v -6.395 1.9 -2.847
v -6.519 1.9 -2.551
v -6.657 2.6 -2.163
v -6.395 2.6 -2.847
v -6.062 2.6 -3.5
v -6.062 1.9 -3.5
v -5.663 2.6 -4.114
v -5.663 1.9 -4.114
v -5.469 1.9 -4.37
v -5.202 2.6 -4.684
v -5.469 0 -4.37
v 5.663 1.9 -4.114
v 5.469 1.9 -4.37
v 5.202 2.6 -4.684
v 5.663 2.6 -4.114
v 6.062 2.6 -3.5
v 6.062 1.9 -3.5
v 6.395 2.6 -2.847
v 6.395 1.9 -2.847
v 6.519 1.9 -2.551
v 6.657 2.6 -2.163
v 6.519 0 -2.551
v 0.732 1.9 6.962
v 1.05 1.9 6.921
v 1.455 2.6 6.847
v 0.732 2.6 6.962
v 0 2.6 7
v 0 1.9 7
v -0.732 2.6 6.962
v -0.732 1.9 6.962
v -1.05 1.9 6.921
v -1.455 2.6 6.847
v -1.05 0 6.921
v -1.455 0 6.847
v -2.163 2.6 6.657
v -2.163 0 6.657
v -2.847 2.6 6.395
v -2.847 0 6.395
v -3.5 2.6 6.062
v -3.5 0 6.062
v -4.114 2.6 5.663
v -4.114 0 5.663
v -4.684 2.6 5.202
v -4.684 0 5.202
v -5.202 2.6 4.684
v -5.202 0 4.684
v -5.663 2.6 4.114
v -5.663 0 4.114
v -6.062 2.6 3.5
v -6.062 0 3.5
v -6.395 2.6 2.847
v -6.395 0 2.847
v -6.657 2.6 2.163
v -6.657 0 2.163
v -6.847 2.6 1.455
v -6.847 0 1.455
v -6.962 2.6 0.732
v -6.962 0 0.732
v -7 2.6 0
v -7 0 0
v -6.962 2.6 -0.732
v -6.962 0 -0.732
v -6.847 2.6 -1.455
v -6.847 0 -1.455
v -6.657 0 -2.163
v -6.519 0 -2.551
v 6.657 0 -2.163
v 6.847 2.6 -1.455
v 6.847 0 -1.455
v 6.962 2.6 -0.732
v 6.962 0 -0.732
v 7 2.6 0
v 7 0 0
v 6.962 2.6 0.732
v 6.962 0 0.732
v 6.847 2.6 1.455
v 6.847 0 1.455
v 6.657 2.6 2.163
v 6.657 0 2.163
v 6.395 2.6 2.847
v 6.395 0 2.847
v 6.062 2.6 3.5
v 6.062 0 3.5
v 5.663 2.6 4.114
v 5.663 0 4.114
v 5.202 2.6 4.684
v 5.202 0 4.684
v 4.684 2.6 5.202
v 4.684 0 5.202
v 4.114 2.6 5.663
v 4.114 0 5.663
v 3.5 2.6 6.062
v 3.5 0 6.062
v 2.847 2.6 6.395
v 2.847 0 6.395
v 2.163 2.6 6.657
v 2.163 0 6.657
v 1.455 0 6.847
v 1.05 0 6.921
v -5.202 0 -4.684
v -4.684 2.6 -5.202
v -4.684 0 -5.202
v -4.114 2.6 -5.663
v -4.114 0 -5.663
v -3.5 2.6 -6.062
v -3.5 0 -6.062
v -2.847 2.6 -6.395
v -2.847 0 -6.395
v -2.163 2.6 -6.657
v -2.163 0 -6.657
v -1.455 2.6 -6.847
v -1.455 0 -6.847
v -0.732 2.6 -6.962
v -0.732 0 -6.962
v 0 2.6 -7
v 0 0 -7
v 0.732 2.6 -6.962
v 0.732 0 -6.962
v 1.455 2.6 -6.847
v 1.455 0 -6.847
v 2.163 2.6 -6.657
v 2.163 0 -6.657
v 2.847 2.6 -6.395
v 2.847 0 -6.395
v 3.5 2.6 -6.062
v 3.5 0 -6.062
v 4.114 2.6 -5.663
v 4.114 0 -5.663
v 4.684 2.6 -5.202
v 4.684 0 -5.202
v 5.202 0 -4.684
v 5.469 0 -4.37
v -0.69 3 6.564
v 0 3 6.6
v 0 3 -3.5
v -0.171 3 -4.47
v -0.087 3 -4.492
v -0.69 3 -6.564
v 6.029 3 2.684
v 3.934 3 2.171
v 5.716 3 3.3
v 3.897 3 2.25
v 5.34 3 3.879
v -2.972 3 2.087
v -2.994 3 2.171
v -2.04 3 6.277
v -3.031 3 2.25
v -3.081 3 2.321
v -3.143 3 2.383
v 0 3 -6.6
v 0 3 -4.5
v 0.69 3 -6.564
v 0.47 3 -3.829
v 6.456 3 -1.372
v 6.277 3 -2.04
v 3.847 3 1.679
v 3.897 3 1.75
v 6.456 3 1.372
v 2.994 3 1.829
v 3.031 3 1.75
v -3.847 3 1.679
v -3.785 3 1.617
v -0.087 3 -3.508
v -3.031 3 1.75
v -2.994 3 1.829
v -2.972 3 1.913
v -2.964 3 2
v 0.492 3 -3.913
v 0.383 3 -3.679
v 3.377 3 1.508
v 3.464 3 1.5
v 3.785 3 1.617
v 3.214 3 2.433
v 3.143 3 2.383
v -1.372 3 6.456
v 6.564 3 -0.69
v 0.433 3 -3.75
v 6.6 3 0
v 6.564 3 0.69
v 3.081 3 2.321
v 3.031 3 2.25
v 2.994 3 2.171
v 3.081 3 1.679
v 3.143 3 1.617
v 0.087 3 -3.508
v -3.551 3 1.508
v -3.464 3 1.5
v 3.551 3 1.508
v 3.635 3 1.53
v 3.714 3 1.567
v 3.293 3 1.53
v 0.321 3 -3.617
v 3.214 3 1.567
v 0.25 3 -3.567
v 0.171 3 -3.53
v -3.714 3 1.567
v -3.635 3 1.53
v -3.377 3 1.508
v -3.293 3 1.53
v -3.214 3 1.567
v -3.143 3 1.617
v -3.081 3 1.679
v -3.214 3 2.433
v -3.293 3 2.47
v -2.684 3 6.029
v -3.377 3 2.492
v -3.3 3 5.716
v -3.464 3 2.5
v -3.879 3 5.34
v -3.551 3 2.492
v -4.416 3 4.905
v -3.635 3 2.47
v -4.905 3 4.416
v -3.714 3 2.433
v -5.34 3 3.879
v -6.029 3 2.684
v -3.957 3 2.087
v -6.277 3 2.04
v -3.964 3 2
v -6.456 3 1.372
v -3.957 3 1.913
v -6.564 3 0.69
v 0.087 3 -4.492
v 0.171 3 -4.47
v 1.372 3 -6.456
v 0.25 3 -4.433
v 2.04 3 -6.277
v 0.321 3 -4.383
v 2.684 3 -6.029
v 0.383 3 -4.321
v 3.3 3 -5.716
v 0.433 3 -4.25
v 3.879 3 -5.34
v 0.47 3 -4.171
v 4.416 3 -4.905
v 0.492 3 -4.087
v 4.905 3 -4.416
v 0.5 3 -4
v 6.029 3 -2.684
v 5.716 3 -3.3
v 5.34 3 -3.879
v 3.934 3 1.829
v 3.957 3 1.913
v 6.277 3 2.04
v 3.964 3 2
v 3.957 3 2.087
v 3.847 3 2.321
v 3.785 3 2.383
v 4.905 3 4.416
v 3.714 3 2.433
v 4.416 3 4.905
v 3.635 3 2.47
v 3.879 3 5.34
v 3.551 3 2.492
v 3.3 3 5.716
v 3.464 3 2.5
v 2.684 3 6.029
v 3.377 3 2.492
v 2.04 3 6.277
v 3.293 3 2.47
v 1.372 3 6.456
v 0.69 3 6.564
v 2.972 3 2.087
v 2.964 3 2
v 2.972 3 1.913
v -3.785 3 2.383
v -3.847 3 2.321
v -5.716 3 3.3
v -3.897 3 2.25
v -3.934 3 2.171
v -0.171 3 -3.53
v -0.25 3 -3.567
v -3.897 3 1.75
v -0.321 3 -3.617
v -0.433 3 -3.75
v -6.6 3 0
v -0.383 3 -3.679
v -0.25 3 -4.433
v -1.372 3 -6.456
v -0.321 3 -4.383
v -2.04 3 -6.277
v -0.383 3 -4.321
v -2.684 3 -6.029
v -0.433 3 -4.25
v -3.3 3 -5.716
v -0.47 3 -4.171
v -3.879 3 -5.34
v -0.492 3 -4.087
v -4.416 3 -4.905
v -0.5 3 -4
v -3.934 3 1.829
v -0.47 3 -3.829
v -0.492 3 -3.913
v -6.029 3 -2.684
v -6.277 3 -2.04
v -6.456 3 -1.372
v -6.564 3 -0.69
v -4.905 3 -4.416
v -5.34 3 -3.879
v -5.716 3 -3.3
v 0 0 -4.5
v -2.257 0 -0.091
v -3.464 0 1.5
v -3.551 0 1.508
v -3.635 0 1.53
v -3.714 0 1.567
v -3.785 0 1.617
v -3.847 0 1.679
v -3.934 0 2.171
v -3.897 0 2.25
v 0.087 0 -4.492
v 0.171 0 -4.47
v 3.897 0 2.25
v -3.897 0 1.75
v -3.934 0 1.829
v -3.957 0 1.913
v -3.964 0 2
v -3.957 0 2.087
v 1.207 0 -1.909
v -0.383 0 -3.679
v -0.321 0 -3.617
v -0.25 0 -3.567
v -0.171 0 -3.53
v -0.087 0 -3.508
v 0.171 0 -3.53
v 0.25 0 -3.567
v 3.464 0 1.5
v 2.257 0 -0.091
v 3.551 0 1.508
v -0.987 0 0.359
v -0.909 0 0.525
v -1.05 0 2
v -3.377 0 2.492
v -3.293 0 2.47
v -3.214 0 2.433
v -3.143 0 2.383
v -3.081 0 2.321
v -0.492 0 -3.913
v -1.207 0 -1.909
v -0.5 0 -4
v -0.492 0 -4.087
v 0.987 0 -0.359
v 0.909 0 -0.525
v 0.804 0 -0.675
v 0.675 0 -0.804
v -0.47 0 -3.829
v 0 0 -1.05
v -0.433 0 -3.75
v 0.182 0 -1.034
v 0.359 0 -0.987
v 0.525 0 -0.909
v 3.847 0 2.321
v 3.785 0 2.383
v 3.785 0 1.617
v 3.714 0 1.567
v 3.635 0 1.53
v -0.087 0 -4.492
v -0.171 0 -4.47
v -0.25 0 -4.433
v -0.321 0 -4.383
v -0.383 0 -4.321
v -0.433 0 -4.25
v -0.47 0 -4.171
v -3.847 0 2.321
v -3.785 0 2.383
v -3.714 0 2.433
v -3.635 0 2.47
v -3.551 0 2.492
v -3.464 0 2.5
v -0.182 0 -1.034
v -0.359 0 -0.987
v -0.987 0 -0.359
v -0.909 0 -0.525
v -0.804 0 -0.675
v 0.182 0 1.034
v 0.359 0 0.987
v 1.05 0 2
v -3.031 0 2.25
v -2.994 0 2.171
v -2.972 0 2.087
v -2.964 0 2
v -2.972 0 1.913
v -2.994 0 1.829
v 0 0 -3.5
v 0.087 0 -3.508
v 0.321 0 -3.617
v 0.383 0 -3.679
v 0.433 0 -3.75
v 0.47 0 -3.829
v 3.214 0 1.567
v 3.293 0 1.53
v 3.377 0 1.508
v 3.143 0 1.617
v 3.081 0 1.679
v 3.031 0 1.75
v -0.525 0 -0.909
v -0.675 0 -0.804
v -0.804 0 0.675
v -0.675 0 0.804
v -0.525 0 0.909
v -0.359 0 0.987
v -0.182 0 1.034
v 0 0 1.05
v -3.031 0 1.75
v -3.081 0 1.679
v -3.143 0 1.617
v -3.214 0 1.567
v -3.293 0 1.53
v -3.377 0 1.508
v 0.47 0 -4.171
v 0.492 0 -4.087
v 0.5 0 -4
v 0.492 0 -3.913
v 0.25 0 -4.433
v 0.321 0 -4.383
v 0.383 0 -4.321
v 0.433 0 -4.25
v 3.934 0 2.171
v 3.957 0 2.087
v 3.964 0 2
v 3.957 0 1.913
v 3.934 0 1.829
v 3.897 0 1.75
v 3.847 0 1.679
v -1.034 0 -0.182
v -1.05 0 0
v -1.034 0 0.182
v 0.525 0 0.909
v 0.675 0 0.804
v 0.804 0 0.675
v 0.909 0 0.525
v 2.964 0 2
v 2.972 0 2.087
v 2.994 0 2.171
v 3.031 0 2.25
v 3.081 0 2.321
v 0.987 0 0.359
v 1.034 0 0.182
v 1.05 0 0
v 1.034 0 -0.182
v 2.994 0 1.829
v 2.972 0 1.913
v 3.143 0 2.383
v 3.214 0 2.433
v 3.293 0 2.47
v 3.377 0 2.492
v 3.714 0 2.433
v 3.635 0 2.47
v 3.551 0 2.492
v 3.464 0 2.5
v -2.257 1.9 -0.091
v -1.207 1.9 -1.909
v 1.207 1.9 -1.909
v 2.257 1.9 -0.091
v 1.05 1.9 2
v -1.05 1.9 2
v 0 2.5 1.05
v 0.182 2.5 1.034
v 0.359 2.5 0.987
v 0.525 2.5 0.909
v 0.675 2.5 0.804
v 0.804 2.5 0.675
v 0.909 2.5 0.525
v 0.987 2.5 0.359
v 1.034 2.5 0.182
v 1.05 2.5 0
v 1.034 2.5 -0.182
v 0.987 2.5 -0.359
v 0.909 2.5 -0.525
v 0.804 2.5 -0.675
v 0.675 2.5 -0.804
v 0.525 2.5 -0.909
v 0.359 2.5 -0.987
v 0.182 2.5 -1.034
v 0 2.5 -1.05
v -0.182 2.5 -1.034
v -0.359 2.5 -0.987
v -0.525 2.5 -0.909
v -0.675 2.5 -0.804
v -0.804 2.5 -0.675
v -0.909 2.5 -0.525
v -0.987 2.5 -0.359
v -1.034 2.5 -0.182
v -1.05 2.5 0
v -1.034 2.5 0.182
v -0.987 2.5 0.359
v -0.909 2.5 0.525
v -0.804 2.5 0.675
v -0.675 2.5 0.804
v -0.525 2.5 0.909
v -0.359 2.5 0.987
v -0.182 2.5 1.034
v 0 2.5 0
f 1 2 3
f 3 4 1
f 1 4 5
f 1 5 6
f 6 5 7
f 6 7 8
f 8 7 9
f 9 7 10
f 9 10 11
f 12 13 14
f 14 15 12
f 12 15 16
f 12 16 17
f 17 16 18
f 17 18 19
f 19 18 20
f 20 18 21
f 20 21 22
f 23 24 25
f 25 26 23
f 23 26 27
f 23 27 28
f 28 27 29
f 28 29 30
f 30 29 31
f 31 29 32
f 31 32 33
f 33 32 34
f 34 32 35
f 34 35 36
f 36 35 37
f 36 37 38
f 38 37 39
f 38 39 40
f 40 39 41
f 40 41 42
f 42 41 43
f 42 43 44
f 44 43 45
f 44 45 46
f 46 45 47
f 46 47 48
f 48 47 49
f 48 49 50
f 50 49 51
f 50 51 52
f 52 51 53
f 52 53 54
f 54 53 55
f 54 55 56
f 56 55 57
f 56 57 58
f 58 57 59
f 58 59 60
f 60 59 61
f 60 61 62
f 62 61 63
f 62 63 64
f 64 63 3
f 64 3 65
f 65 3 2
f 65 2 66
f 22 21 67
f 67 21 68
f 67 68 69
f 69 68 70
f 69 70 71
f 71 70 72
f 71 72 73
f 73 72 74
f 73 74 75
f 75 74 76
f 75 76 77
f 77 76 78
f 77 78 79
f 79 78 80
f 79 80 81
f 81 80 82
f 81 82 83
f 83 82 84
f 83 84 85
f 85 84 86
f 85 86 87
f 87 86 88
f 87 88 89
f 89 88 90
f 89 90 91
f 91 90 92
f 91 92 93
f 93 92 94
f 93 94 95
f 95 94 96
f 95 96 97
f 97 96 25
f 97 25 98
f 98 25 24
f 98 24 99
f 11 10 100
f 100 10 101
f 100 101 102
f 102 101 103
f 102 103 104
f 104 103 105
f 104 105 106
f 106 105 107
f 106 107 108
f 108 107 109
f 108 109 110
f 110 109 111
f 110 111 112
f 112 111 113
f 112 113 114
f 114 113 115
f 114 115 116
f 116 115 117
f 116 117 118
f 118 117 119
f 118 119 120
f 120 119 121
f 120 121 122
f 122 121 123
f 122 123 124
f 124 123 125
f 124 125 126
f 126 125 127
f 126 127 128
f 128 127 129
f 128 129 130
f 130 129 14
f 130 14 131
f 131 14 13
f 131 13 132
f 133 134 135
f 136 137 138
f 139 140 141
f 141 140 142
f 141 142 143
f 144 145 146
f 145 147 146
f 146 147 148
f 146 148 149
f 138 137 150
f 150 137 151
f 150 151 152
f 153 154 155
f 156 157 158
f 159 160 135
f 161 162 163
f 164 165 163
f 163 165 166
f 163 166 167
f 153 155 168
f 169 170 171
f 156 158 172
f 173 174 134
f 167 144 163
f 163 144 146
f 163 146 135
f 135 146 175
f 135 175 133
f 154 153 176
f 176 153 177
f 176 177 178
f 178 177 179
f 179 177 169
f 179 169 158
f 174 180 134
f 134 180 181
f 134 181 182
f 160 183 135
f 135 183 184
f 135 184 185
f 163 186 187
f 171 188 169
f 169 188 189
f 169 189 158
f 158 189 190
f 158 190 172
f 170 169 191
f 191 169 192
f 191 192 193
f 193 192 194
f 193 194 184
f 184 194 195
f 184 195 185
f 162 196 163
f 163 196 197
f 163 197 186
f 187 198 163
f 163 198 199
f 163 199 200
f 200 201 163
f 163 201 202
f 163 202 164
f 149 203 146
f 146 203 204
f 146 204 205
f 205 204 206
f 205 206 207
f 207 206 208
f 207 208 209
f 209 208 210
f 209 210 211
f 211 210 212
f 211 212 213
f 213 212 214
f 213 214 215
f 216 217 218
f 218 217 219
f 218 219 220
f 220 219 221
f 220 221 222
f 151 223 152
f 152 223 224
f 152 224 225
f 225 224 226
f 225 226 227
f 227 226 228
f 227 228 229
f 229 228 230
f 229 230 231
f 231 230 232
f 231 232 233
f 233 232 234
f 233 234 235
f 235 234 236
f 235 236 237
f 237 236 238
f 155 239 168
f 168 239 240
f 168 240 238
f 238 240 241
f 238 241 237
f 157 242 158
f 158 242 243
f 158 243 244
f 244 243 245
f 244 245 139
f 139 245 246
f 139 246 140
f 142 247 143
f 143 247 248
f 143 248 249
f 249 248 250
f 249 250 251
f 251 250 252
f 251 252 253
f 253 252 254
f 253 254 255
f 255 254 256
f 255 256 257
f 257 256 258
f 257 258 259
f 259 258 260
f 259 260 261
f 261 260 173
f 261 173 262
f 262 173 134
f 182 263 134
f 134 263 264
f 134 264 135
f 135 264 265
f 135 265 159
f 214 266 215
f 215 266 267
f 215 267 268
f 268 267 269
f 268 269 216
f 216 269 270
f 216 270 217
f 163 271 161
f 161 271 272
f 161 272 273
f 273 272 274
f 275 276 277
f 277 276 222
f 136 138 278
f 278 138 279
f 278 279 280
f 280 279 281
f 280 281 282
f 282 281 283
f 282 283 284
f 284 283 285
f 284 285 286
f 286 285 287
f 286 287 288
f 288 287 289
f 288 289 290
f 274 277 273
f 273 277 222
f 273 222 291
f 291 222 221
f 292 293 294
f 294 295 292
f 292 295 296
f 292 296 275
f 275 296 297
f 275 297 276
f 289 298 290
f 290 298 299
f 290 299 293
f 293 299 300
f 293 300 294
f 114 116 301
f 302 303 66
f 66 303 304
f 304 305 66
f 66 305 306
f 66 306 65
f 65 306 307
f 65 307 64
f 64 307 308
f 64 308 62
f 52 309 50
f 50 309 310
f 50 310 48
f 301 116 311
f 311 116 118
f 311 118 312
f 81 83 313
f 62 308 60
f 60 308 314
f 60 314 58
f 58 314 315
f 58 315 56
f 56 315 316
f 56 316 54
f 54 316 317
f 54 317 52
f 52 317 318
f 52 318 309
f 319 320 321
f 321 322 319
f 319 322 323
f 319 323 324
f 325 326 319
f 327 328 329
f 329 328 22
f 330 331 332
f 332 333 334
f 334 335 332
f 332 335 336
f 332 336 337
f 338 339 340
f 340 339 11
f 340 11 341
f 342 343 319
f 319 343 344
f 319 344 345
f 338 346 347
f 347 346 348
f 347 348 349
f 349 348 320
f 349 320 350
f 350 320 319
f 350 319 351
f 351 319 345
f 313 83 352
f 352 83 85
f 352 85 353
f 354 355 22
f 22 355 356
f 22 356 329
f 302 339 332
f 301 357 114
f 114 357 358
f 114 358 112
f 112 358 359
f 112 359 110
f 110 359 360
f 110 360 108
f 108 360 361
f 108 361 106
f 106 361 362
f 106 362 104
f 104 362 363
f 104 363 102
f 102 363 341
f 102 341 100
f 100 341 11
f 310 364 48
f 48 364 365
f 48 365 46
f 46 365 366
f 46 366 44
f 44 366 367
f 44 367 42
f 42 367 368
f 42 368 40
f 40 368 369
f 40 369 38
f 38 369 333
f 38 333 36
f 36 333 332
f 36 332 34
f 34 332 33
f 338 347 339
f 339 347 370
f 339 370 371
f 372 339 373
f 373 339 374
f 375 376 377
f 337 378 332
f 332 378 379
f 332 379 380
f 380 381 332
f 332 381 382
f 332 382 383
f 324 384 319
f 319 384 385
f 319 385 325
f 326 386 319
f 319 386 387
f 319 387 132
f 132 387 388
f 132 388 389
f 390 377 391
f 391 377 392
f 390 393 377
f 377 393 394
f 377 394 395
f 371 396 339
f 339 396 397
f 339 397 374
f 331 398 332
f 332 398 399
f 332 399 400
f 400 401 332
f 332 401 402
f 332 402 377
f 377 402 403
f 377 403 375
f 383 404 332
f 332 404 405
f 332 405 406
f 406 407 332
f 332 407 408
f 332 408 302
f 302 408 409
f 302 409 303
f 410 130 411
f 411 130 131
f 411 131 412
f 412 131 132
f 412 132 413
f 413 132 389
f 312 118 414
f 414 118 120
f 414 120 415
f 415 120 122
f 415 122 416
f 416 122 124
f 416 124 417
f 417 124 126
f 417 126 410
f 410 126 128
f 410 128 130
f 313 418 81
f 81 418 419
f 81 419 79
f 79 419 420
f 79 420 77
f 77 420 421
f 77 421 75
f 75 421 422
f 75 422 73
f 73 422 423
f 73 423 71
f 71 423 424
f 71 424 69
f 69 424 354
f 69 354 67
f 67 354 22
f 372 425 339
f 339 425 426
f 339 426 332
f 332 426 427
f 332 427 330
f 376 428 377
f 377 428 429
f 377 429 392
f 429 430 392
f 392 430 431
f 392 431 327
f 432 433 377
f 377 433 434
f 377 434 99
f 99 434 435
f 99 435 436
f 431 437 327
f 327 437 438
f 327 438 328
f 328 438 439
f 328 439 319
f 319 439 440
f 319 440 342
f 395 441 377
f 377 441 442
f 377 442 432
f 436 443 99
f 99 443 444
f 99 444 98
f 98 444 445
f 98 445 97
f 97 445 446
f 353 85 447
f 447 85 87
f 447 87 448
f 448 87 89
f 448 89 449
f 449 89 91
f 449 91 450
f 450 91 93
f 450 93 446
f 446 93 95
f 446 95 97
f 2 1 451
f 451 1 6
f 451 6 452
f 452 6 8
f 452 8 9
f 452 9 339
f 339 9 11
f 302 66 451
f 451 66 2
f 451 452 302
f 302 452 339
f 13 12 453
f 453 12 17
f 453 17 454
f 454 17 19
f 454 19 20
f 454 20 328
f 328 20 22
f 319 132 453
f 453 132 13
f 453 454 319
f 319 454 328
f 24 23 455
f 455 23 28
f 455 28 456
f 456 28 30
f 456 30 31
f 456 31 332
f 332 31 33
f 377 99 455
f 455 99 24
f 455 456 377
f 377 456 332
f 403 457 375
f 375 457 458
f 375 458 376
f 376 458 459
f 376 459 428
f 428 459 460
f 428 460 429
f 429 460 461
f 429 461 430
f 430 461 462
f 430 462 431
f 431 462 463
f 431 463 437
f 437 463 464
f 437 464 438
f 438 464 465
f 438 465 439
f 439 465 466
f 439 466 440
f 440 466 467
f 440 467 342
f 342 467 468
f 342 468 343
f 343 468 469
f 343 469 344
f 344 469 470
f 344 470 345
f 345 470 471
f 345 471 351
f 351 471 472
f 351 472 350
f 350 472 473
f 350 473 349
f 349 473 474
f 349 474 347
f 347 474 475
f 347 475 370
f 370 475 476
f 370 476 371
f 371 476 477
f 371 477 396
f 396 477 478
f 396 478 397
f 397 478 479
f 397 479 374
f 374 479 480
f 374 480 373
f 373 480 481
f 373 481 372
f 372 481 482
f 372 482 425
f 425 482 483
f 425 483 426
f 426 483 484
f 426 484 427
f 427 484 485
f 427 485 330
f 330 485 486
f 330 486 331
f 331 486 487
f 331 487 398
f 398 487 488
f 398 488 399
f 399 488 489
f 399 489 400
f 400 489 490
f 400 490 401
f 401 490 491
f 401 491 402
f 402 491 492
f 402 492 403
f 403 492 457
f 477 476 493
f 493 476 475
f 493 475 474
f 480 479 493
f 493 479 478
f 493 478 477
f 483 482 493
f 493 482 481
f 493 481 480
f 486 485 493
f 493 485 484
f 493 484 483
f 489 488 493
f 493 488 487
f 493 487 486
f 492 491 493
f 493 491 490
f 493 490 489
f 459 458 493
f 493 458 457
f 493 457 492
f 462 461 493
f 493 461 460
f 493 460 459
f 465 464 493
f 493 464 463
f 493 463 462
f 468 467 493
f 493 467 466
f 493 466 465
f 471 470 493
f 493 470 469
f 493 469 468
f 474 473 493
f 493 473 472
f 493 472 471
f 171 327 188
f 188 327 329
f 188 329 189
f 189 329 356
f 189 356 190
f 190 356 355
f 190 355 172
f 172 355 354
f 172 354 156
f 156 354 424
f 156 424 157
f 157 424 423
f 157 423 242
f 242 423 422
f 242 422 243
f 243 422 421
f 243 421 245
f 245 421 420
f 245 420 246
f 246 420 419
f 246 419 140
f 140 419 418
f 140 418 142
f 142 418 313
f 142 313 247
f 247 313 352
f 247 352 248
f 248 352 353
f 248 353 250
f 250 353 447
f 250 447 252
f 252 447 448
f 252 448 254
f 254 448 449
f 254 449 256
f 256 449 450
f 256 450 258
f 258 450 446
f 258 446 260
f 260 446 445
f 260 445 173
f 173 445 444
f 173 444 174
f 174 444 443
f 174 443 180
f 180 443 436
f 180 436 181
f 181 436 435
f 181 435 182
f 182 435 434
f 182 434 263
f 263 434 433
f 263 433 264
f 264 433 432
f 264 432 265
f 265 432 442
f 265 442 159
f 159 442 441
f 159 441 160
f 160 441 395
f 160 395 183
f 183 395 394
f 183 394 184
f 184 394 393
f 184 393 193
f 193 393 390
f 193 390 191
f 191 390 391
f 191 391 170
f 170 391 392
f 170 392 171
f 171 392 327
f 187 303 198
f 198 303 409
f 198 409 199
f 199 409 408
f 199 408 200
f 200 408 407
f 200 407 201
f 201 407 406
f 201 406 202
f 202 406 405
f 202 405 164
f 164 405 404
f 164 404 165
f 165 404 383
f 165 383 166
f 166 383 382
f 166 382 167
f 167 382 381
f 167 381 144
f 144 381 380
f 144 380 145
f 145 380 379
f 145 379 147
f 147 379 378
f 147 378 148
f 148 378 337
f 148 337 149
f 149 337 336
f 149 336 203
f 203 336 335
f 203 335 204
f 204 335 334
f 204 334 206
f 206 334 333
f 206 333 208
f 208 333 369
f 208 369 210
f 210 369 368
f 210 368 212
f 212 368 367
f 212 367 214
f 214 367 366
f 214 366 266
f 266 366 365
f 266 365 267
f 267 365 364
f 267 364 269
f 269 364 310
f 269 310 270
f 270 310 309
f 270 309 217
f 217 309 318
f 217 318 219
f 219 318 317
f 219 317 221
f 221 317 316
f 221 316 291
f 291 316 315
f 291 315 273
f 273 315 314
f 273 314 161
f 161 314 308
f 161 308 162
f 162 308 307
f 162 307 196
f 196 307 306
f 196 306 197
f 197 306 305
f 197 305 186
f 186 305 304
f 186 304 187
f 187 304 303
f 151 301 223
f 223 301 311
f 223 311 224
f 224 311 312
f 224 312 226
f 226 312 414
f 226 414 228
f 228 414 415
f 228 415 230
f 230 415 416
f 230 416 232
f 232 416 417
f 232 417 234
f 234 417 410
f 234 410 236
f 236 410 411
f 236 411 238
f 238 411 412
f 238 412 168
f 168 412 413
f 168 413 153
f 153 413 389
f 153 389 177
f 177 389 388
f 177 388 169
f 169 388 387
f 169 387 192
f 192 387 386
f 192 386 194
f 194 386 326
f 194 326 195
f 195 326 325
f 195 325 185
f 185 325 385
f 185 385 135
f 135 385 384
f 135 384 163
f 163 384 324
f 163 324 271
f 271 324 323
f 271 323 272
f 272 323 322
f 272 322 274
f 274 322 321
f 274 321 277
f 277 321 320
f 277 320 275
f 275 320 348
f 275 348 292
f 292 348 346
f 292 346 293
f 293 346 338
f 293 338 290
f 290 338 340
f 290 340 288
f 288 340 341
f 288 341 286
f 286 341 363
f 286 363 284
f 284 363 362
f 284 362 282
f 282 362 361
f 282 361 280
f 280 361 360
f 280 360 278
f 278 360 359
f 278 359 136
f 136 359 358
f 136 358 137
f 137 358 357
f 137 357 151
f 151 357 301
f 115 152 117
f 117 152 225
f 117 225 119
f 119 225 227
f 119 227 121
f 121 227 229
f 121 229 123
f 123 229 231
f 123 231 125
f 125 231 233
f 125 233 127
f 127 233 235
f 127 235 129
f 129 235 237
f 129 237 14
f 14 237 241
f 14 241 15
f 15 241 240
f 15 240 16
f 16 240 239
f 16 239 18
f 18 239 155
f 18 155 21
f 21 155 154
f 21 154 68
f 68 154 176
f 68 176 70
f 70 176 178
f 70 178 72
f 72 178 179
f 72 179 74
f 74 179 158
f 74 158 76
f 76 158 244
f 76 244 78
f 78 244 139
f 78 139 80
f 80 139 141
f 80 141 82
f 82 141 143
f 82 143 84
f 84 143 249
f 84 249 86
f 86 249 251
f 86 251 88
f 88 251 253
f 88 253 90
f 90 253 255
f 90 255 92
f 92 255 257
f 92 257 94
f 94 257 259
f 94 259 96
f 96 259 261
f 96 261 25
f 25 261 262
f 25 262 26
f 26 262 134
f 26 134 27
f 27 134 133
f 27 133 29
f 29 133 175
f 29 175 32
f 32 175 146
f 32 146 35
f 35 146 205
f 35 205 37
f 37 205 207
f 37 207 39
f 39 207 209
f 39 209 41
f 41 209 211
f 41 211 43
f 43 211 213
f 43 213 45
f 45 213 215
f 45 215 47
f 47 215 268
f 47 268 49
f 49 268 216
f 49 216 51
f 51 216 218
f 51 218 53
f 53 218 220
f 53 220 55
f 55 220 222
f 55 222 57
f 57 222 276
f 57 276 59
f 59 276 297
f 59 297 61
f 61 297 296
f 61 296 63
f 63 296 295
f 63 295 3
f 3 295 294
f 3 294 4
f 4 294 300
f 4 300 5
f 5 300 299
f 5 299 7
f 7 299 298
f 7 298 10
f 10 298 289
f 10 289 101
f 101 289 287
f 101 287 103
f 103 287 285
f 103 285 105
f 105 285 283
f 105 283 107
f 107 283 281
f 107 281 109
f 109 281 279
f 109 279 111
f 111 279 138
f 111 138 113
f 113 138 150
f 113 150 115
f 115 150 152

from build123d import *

# Parameters (mm, degrees)
SKETCH_1_R               = 7
EXTRUDE_1_DEPTH          = 3
SKETCH_2_W               = 2.1
SKETCH_2_H               = 10
CUT_EXTRUDE_1_DEPTH      = 1.9
SKETCH_3_R               = 1.05
CUT_EXTRUDE_2_DEPTH      = 1
CUT_EXTRUDE_2_DEPTH_BACK = 2.5
SKETCH_4_R               = 0.5
CUT_EXTRUDE_3_DEPTH      = 1
CUT_EXTRUDE_3_DEPTH_BACK = 4
CHAMFER_1_SIZE           = 0.4


with BuildPart() as part:
    # Эскиз1 → Бобышка-Вытянуть1 (new body)
    with BuildSketch(Plane(origin=(0, 0, 0), x_dir=(1, 0, 0), z_dir=(0, 1, 0))):
        Circle(SKETCH_1_R)
    extrude(amount=EXTRUDE_1_DEPTH)

    # Эскиз2 → Вырез-Вытянуть1 (cut)
    with BuildSketch(Plane.XZ):
        Polygon((10.917234456, -5.090702278), (9.867234456, -6.909355626), (1.206980418, -1.909355626), (2.256980418, -0.090702278), align=None)
        with Locations((-7.039e-05, 6.999971048)):
            Rectangle(SKETCH_2_W, SKETCH_2_H)
        Polygon((-9.867375235, -6.909355626), (-10.917375235, -5.090702278), (-2.257121197, -0.090702278), (-1.207121197, -1.909355626), align=None)
    extrude(amount=-CUT_EXTRUDE_1_DEPTH, mode=Mode.SUBTRACT)

    # Эскиз3 → Вырез-Вытянуть2 (cut, two sides)
    with BuildSketch(Plane.XZ) as cut_extrude_2_sk:
        Circle(SKETCH_3_R)
    extrude(amount=CUT_EXTRUDE_2_DEPTH, mode=Mode.SUBTRACT)
    extrude(cut_extrude_2_sk.sketch, amount=-CUT_EXTRUDE_2_DEPTH_BACK, mode=Mode.SUBTRACT)

    # Эскиз4 → Вырез-Вытянуть3 (cut, two sides)
    with BuildSketch(Plane.XZ) as cut_extrude_3_sk:
        with Locations((0, -4)):
            Circle(SKETCH_4_R)
        with Locations((-3.464101615, 2)):
            Circle(SKETCH_4_R)
        with Locations((3.464101615, 2)):
            Circle(SKETCH_4_R)
    extrude(amount=CUT_EXTRUDE_3_DEPTH, mode=Mode.SUBTRACT)
    extrude(cut_extrude_3_sk.sketch, amount=-CUT_EXTRUDE_3_DEPTH_BACK, mode=Mode.SUBTRACT)

    # Фаска1
    chamfer_1_edges = [part.edges().sort_by_distance(p)[0] for p in [
        (-7, 3, 0),
    ]]
    chamfer(chamfer_1_edges, length=CHAMFER_1_SIZE)


solid = part.part
